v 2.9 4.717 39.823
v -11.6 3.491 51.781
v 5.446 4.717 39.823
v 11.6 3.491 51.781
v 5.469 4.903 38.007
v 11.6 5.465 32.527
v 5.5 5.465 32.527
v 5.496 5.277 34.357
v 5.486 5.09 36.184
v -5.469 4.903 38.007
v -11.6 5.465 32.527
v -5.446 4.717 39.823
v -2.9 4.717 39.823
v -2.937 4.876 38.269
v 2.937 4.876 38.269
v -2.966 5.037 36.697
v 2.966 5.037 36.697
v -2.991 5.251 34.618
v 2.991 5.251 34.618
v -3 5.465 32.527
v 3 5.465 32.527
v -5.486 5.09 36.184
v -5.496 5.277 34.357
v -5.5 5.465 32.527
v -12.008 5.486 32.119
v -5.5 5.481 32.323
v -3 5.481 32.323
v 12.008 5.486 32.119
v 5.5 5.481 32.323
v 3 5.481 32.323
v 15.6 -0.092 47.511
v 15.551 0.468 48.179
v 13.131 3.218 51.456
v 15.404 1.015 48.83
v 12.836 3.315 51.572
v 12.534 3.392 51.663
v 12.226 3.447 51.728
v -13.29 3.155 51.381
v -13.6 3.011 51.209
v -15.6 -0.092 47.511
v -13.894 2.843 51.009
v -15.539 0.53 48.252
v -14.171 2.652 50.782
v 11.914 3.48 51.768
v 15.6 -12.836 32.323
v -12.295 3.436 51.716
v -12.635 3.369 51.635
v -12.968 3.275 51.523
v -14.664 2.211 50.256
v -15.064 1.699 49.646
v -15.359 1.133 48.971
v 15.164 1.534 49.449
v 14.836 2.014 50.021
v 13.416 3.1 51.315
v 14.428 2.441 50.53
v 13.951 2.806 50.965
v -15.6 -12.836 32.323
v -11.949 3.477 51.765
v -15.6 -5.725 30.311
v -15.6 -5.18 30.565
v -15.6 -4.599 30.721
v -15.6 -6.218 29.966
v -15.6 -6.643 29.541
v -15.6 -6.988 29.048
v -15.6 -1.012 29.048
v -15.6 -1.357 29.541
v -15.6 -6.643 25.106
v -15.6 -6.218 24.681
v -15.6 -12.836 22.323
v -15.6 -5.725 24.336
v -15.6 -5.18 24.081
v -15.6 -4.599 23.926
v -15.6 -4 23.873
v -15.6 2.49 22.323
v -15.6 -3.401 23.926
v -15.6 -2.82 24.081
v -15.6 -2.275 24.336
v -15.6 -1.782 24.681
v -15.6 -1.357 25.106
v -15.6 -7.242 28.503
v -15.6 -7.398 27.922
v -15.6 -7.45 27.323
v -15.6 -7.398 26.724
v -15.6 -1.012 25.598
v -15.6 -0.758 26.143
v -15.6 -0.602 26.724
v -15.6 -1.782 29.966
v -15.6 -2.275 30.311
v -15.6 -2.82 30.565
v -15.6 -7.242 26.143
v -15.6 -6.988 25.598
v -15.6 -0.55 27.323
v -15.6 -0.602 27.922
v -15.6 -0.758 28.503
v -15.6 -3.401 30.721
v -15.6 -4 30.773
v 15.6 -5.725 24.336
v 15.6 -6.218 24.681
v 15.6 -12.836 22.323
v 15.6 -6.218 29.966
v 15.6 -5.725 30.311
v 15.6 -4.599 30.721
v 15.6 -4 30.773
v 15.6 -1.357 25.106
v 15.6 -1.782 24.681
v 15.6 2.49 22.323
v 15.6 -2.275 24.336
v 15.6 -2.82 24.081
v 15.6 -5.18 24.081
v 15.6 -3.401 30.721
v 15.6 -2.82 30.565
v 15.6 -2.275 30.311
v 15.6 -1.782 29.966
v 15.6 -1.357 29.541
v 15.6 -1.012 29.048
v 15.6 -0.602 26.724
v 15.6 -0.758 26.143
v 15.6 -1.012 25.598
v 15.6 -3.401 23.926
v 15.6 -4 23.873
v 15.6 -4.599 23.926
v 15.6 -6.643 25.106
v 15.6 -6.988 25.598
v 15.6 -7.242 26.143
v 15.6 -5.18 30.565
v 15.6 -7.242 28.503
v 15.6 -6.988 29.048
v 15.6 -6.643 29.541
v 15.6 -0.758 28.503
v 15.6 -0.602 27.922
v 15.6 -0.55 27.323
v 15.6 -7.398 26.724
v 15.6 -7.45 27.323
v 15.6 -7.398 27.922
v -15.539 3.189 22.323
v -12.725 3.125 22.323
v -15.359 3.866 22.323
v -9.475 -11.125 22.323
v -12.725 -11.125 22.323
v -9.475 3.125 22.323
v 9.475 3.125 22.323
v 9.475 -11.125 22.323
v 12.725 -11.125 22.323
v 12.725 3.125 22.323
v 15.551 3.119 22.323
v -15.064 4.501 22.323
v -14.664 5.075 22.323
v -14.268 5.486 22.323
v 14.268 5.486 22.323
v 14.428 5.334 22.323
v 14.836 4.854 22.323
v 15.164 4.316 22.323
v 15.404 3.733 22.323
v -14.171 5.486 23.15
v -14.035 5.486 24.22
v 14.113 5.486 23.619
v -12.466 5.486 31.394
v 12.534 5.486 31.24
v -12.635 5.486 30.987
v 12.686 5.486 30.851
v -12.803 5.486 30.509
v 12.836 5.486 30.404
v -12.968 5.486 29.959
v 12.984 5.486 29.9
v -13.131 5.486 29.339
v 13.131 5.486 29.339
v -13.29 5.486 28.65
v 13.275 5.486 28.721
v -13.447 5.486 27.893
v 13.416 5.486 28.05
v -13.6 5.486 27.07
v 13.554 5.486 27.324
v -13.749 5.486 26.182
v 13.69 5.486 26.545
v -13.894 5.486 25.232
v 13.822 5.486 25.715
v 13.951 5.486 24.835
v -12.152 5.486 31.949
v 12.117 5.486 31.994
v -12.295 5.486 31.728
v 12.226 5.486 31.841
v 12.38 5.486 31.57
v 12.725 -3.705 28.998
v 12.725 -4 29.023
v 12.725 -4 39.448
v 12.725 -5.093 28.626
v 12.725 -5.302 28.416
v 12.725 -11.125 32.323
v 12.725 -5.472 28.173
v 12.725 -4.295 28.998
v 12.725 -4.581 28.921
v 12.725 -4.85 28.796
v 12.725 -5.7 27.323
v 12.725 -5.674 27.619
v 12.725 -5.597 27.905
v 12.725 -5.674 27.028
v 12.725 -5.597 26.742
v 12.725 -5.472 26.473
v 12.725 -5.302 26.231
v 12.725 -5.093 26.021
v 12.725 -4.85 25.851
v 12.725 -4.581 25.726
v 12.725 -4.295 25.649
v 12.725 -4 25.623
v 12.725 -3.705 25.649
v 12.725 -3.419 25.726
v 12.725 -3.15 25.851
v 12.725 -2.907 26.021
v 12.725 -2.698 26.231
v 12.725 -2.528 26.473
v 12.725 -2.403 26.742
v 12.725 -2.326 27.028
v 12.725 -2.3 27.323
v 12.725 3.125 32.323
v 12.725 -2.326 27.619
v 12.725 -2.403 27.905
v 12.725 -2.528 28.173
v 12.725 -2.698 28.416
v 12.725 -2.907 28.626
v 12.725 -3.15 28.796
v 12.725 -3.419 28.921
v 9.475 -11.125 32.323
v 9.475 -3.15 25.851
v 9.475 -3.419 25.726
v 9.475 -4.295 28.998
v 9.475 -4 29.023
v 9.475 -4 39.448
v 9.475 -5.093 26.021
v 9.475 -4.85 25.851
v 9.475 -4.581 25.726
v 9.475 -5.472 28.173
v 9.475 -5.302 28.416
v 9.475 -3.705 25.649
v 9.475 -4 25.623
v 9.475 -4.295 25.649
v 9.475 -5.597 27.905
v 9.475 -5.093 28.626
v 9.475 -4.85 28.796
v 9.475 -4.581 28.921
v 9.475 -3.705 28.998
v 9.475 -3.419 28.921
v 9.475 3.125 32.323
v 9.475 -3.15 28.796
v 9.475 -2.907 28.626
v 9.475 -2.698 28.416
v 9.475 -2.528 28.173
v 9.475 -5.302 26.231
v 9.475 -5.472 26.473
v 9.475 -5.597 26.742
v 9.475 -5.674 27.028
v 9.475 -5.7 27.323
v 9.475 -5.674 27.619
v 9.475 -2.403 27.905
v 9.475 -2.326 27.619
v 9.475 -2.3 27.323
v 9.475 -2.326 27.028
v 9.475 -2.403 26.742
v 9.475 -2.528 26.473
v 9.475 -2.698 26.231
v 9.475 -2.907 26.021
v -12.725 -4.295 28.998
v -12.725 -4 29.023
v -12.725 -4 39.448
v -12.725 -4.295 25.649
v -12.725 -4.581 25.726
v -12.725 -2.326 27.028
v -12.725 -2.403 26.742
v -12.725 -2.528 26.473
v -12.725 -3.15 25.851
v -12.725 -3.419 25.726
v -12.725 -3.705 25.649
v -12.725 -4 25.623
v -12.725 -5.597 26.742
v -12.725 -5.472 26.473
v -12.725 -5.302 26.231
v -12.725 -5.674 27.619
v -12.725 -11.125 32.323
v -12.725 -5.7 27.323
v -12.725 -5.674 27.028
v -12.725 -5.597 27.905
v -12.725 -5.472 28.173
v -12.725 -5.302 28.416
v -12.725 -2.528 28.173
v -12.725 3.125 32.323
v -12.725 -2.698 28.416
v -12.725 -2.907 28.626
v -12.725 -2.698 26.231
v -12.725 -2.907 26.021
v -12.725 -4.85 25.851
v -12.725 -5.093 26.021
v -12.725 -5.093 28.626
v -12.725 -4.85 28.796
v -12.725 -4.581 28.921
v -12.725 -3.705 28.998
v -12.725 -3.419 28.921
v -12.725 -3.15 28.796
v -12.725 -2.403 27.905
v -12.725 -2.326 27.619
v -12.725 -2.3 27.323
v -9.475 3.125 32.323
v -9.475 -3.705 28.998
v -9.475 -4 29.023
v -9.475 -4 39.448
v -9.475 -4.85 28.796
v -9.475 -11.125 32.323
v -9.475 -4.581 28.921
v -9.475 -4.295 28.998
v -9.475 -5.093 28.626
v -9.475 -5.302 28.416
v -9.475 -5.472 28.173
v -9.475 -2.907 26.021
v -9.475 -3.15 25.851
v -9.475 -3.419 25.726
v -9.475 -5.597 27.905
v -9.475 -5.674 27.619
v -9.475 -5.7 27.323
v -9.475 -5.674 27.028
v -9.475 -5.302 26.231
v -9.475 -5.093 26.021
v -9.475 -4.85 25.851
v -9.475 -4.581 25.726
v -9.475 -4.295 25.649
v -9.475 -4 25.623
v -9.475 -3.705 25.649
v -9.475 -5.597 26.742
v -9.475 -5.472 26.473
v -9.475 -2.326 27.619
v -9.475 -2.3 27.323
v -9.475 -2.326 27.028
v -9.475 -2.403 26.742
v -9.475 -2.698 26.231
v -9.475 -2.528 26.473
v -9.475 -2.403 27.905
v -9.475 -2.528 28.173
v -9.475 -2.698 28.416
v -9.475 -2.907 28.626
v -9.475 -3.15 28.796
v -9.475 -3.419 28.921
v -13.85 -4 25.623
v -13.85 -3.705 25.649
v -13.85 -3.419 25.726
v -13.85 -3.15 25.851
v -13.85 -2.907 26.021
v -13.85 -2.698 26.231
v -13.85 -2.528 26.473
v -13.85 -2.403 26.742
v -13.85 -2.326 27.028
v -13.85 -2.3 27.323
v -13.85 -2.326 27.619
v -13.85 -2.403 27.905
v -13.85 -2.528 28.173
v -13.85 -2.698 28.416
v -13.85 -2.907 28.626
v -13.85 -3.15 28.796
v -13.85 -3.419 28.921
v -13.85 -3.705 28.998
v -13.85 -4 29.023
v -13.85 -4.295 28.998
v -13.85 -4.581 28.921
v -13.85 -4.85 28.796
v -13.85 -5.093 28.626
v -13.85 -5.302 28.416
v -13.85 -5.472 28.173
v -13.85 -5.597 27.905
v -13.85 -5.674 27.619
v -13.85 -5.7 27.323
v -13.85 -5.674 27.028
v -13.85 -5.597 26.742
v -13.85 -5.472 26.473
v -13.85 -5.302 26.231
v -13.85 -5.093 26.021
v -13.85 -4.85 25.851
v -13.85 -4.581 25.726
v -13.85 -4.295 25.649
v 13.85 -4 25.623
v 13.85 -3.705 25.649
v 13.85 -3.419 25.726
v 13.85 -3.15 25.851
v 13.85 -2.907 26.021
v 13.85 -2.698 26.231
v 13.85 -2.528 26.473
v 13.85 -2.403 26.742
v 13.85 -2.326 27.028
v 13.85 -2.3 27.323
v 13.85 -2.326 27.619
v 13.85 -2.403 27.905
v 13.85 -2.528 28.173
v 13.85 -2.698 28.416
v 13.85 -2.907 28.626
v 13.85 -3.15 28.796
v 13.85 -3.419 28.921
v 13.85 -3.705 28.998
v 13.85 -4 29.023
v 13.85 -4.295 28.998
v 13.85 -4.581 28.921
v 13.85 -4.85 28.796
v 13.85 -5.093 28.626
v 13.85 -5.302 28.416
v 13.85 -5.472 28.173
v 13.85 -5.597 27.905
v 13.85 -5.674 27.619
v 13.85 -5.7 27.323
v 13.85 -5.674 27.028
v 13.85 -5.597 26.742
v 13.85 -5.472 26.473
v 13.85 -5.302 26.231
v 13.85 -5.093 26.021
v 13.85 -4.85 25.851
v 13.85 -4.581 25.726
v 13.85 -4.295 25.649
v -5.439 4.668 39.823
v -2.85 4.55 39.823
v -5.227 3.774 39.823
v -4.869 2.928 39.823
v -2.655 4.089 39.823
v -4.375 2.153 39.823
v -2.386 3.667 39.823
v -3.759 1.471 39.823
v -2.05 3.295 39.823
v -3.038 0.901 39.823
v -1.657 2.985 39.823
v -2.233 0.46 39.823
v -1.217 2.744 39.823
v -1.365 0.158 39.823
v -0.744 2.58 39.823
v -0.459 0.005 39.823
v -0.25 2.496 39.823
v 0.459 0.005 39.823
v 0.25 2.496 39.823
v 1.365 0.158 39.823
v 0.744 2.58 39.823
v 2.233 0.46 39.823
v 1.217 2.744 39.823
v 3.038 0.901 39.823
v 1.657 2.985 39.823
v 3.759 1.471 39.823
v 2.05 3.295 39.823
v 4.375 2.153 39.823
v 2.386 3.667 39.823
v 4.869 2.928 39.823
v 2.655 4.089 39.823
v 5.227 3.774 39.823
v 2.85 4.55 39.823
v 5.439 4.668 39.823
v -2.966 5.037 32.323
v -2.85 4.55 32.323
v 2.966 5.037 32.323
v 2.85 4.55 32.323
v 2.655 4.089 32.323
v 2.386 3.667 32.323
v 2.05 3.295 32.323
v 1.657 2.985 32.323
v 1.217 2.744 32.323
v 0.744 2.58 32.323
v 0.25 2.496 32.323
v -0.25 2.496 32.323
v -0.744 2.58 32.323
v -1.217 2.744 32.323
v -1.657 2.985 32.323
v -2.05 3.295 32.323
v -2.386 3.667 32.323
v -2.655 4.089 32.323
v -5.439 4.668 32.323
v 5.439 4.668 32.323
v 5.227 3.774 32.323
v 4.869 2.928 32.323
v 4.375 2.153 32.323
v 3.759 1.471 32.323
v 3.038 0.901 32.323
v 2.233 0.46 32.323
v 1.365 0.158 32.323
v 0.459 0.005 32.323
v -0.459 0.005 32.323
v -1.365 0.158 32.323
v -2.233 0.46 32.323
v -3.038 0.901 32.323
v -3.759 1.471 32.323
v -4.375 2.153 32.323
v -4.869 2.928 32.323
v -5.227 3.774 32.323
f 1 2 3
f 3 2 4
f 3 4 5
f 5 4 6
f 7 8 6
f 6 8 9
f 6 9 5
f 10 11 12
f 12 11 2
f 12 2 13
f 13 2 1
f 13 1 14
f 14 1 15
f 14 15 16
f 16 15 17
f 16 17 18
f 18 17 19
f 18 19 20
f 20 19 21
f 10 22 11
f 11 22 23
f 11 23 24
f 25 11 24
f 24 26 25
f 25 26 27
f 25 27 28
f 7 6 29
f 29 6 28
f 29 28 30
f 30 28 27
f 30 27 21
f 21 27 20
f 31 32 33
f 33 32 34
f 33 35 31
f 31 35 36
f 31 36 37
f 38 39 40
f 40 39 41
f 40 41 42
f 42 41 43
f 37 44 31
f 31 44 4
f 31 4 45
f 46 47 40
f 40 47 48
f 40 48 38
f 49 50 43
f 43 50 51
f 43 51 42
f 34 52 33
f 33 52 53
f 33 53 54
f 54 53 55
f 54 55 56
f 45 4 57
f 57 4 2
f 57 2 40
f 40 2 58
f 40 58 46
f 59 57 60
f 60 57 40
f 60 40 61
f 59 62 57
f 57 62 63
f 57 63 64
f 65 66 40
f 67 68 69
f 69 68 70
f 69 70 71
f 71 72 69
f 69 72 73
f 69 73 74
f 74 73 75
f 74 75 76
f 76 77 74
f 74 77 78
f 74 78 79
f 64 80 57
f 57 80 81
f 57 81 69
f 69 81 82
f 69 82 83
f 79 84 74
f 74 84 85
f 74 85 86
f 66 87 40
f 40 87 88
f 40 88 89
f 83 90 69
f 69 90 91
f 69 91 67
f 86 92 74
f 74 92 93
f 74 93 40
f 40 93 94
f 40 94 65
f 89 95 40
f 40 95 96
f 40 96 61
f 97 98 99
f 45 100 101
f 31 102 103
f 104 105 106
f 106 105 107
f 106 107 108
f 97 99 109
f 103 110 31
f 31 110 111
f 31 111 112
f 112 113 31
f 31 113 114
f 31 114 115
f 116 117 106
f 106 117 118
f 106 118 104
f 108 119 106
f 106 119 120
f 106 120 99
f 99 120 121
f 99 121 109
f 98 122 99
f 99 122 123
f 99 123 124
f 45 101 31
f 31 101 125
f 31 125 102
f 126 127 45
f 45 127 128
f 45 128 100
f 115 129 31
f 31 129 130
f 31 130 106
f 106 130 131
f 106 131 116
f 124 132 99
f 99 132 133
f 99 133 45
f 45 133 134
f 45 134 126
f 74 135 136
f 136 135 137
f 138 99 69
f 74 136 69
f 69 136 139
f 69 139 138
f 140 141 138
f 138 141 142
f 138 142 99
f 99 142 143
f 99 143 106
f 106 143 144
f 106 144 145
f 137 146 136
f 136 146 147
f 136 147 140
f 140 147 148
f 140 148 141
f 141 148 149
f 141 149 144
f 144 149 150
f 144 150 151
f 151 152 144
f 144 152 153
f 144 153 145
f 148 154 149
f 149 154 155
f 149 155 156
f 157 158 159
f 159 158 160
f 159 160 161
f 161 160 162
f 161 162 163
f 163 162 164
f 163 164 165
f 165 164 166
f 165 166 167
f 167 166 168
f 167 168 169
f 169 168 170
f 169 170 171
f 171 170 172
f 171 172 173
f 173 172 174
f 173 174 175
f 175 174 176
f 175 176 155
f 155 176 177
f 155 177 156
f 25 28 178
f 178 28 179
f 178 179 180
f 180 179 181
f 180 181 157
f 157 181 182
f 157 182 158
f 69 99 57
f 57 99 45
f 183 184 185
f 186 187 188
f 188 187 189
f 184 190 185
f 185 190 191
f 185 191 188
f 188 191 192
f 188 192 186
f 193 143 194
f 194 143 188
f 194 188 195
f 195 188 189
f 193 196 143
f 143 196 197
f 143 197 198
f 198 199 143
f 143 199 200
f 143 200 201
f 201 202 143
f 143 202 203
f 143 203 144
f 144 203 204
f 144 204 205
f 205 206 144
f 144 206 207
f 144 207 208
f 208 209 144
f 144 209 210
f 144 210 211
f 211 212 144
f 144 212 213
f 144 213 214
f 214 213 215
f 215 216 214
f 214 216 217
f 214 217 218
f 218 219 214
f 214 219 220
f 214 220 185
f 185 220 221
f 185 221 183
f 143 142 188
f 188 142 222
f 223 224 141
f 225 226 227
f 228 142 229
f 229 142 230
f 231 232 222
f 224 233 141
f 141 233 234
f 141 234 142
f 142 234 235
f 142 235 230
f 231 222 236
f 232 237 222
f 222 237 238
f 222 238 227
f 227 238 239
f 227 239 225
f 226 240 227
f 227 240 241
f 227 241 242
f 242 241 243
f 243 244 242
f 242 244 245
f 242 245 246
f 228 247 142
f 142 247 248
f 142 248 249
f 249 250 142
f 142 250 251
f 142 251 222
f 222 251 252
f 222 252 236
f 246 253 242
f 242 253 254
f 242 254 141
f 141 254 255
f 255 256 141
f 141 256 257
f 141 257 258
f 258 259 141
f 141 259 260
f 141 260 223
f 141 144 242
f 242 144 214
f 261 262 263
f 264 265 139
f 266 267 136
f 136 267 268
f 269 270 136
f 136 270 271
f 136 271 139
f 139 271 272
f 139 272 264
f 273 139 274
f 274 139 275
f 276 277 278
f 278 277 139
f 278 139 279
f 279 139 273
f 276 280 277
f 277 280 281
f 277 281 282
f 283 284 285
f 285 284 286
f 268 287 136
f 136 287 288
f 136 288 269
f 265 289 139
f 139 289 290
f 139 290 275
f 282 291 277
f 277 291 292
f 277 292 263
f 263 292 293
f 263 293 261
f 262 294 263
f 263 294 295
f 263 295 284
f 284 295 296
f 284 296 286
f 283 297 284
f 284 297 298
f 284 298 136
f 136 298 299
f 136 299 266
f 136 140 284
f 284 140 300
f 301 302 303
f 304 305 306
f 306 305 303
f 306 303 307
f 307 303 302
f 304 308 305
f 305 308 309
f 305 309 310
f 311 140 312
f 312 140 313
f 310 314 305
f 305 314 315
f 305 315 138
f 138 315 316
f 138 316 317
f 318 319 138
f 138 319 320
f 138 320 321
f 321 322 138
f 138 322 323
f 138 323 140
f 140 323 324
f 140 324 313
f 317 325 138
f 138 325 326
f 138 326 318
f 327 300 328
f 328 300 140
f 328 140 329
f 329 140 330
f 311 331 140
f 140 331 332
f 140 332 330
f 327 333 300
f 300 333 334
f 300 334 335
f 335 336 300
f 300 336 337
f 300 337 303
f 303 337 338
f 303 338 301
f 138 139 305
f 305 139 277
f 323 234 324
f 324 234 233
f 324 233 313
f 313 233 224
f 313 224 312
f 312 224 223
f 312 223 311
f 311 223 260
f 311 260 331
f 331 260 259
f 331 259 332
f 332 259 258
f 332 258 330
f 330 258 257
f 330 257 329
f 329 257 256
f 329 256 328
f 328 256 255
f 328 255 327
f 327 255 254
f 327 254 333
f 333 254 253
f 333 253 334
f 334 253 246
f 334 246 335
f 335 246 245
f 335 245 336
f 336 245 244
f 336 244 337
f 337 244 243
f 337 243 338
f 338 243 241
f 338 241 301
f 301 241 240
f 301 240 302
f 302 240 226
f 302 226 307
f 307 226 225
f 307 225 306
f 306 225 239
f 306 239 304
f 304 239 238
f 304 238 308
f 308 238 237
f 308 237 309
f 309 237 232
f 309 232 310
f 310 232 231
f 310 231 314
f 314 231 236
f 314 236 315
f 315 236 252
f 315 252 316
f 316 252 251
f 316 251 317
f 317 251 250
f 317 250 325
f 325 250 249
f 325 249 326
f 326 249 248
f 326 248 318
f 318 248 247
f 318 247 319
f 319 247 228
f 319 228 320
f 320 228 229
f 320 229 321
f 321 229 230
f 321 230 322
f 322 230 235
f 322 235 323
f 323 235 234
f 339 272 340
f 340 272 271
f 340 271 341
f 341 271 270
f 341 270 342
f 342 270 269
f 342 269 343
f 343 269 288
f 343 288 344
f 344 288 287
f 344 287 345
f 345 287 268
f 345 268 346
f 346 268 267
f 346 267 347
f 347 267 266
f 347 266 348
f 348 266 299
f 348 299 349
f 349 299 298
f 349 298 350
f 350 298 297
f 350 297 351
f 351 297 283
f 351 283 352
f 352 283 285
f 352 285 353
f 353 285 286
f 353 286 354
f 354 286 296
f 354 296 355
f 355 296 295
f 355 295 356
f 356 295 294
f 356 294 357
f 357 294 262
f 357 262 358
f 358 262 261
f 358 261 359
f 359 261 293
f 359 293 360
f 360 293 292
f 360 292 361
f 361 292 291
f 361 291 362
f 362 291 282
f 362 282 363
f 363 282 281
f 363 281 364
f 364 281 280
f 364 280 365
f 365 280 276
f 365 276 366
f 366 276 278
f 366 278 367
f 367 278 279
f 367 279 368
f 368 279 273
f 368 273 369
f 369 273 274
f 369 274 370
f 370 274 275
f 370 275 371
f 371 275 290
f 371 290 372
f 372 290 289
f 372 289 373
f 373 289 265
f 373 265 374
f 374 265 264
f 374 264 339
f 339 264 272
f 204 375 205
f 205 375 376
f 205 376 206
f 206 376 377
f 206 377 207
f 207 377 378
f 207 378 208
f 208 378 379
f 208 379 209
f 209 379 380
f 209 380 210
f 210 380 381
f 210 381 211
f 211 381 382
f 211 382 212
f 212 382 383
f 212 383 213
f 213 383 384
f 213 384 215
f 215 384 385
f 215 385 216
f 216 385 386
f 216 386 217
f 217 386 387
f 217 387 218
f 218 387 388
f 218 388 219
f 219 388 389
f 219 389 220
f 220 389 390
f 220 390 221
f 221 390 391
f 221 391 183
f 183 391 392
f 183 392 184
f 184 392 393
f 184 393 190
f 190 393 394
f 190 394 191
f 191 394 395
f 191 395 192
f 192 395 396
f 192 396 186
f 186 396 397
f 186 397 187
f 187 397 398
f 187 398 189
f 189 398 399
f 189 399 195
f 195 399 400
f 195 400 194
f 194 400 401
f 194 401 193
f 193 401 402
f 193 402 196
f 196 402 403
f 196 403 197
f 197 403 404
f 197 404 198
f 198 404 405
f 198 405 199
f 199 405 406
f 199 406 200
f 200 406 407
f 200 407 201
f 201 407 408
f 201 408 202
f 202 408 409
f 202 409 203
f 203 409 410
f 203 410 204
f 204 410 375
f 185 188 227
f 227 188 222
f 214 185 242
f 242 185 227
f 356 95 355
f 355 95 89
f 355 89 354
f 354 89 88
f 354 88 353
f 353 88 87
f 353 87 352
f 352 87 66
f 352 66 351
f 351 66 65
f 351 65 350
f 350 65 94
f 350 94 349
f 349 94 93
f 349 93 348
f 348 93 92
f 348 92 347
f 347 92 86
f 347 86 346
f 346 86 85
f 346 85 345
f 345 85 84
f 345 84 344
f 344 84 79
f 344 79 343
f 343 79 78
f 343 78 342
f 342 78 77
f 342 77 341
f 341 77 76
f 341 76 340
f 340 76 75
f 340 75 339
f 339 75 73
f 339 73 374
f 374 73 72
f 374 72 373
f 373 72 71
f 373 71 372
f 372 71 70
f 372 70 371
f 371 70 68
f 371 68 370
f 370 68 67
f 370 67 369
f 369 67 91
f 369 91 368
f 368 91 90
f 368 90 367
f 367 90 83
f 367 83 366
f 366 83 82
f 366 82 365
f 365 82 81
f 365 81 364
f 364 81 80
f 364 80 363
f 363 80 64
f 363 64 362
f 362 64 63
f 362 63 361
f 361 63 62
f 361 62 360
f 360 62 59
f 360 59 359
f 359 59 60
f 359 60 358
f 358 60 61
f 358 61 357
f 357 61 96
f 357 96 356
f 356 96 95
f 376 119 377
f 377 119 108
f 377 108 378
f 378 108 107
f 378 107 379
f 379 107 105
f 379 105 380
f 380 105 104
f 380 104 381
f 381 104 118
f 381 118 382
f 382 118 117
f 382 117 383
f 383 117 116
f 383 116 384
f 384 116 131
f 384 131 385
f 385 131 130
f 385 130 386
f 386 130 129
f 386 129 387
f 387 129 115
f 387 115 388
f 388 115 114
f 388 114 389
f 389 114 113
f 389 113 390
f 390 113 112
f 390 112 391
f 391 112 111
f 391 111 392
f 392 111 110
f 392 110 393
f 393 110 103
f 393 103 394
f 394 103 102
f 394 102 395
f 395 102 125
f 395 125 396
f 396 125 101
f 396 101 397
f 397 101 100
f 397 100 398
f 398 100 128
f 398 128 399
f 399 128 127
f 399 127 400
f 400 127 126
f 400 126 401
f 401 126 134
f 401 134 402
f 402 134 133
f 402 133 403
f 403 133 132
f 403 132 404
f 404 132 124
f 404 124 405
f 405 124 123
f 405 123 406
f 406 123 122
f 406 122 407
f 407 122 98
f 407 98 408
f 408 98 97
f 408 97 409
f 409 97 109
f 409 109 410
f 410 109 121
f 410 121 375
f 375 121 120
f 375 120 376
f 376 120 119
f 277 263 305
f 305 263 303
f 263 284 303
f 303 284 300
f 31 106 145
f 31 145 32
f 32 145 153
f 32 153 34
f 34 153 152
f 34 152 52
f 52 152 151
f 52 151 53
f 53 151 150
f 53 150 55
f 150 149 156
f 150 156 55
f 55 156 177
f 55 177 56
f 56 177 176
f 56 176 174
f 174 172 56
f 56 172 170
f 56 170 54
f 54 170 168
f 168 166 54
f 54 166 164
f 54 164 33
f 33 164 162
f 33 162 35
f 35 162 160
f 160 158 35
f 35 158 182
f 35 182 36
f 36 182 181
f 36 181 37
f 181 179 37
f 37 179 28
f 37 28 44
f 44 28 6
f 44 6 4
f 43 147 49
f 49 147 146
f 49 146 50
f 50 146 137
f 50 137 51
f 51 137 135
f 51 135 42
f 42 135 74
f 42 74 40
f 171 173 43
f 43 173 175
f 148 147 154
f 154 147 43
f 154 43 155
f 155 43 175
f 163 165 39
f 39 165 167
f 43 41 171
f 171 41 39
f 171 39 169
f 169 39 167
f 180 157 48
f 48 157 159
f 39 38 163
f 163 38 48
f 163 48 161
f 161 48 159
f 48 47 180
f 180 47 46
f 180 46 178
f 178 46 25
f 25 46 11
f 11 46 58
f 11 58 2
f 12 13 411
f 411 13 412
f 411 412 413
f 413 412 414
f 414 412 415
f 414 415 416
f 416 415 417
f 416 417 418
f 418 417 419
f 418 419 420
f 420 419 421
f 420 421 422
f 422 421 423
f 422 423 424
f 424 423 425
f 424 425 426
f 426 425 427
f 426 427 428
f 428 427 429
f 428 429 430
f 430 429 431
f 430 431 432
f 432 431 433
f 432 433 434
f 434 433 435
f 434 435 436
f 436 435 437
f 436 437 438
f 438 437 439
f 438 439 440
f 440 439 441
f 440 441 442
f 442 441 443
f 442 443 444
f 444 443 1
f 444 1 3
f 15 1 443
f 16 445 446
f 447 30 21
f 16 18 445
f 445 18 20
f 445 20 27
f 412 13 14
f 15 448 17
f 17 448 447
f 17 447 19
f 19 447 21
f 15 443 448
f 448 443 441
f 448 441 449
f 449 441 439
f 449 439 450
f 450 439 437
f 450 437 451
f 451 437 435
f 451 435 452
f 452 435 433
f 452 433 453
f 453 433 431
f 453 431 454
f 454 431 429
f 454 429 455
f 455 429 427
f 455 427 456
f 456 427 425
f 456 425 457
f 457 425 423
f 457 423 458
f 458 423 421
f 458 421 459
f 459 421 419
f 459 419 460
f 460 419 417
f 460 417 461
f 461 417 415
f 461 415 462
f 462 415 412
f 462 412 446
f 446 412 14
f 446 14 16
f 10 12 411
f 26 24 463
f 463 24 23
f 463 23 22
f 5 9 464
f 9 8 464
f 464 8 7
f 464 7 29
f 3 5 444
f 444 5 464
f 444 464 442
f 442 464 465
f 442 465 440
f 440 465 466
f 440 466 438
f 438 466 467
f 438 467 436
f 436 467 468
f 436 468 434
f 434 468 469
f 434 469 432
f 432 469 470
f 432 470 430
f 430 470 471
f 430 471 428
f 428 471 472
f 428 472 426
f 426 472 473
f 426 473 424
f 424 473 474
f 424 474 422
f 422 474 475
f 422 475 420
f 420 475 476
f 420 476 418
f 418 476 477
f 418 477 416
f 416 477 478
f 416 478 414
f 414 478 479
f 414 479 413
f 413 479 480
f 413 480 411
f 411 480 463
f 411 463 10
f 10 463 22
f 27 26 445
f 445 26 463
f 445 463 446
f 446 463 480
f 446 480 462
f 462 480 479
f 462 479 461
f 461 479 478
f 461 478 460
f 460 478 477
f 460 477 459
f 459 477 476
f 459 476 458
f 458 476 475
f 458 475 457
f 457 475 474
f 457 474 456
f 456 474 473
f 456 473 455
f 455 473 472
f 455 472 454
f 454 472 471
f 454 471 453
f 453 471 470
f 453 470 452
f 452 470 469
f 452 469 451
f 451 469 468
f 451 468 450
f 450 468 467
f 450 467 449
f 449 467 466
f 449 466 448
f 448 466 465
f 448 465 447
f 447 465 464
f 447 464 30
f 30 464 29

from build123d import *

# Parameters (mm, degrees)
BOSS_EXTRUDE1_DEPTH = 31.2
BOSS_EXTRUDE2_DEPTH = 10
CUT_EXTRUDE1_START  = -31.2
SKETCH6_R           = 1.6999999999999995
CUT_EXTRUDE1_DEPTH  = 31.2
CUT_EXTRUDE2_DEPTH  = 3.25
CHAMFER1_SIZE       = 1.75
FILLET2_R           = 4
CUT_EXTRUDE3_DEPTH  = 7.5


with BuildPart() as part:
    # Sketch4 → Boss-Extrude1 (new body)
    with BuildSketch(Plane(origin=(15.600000000000225, 5.91e-15, 1.0893e-13), x_dir=(3.8e-16, -1, 0), z_dir=(-1, -3.8e-16, -6.98e-15))):
        Polygon((12.836171405416206, 32.32337770791894), (-3.4906338806220005, 51.78090656314089), (-5.485895724995086, 32.32337770791894), align=None)
    extrude(amount=BOSS_EXTRUDE1_DEPTH)

    # Sketch5 → Boss-Extrude2 (add)
    with BuildSketch(Plane(origin=(-2.2571e-13, 0, 32.323377707918944), x_dir=(-1, 0, -6.98e-15), z_dir=(6.98e-15, 0, -1))):
        Polygon((-15.600000000000223, 5.485895724995093), (-15.60000000000023, -12.8361714054162), (15.599999999999769, -12.836171405416213), (15.599999999999776, 5.485895724995081), align=None)
        Polygon((-12.725000000000225, -11.125000000000004), (-9.475000000000225, -11.125000000000004), (-9.475000000000227, 3.1250000000000013), (-12.725000000000227, 3.125000000000001), align=None, mode=Mode.SUBTRACT)
        Polygon((12.724999999999774, -11.125000000000002), (9.474999999999774, -11.125), (9.474999999999772, 3.1250000000000018), (12.724999999999772, 3.1250000000000027), align=None, mode=Mode.SUBTRACT)
    extrude(amount=BOSS_EXTRUDE2_DEPTH)

    # Sketch6 → Cut-Extrude1 (cut)
    with BuildSketch(Plane(origin=(15.600000000000225, 5.91e-15, 1.0909e-13), x_dir=(6.99e-15, 0, -1), z_dir=(1, 3.8e-16, 6.99e-15)).offset(CUT_EXTRUDE1_START)):
        with Locations((-27.32337770791874, -4.000000000000007)):
            Circle(SKETCH6_R)
    extrude(amount=CUT_EXTRUDE1_DEPTH, mode=Mode.SUBTRACT)

    # Sketch8 → Cut-Extrude2 (cut)
    with BuildSketch(Plane(origin=(9.475000000000227, -1.15e-15, 6.616e-14), x_dir=(6.98e-15, 0, -1), z_dir=(1, 0, 6.98e-15))):
        Polygon((-32.323377707918944, -11.125000000000002), (-32.323377707918944, 3.1250000000000027), (-39.44837770791897, -3.999999999999999), align=None)
    cut_extrude2 = extrude(amount=CUT_EXTRUDE2_DEPTH, mode=Mode.SUBTRACT)

    # Chamfer1
    chamfer1_edges = [part.edges().sort_by_distance(p)[0] for p in [
        (-15.599999999999975, -4.000000000000013, 29.02337770791863),
        (15.600000000000025, -4.000000000000001, 29.02337770791885),
    ]]
    chamfer(chamfer1_edges, length=CHAMFER1_SIZE)

    # Mirror1: Cut-Extrude2 across plane
    add(cut_extrude2.mirror(Plane(origin=(0, 0, 0), x_dir=(0, 0, 1), z_dir=(1, 0, 0))), mode=Mode.SUBTRACT)

    # Fillet2
    # the kernel refuses this fillet: 4 mm, written as the material it takes off along each edge
    with BuildSketch(Plane(origin=(-15.600000000000204, 2.4705385648813603, 61.72874077701889), x_dir=(1, 3.9e-16, 6.98e-15), z_dir=(6.907902673272719e-15, 0.10200953157406341, -0.9947834213878116))) as fillet2_piece_1:
        with BuildLine():
            CenterArc((FILLET2_R, FILLET2_R), FILLET2_R, 180, 90)
            Line((2.72e-15, FILLET2_R), (0, 0))
            Line((0, 0), (FILLET2_R, 0))
        make_face()
    extrude(amount=39.55956285246186, mode=Mode.SUBTRACT)
    with BuildSketch(Plane(origin=(16.11138148873873, 5.485895724995093, 32.323377707919036), x_dir=(-6.90790267327272e-15, -0.10200953157406191, 0.9947834213878117), z_dir=(-1, -3.8e-16, -6.98e-15))) as fillet2_piece_2:
        with BuildLine():
            CenterArc((FILLET2_R * 0.0511381488739, -FILLET2_R), FILLET2_R, 89.9999999999999, 5.854900023063593)
            Line((-FILLET2_R * 0.0508713827002, -FILLET2_R * 0.00521657861219), (0, 0))
            Line((0, 0), (FILLET2_R * 0.0511381488739, 0))
        make_face()
    extrude(amount=32.22276297747746, mode=Mode.SUBTRACT)
    with BuildSketch(Plane(origin=(15.599999999999794, 2.470538564881372, 61.72874077701911), x_dir=(0, -0.9947834213878115, -0.1020095315740634), z_dir=(6.907902673272719e-15, 0.10200953157406341, -0.9947834213878116))) as fillet2_piece_3:
        with BuildLine():
            CenterArc((FILLET2_R, FILLET2_R), FILLET2_R, 180, 90)
            Line((6.7e-16, FILLET2_R), (0, 0))
            Line((0, 0), (FILLET2_R, 0))
        make_face()
    extrude(amount=39.559562852461866, mode=Mode.SUBTRACT)

    # Sketch9 → Cut-Extrude3 (cut)
    with BuildSketch(Plane.XY.offset(32.32337770791894)):
        with BuildLine():
            Line((3, 5.485895724995084), (5.5, 5.485895724995082))
            ThreePointArc((5.5, 5.485895724995082), (-1.4e-15, -0.01410427500491185), (-5.5, 5.485895724995082))
            Line((-5.5, 5.485895724995082), (-3, 5.485895724995084))
            ThreePointArc((-3, 5.485895724995084), (-1.55e-15, 2.485895724995088), (3, 5.485895724995084))
        make_face()
    extrude(amount=CUT_EXTRUDE3_DEPTH, mode=Mode.SUBTRACT)


solid = part.part
